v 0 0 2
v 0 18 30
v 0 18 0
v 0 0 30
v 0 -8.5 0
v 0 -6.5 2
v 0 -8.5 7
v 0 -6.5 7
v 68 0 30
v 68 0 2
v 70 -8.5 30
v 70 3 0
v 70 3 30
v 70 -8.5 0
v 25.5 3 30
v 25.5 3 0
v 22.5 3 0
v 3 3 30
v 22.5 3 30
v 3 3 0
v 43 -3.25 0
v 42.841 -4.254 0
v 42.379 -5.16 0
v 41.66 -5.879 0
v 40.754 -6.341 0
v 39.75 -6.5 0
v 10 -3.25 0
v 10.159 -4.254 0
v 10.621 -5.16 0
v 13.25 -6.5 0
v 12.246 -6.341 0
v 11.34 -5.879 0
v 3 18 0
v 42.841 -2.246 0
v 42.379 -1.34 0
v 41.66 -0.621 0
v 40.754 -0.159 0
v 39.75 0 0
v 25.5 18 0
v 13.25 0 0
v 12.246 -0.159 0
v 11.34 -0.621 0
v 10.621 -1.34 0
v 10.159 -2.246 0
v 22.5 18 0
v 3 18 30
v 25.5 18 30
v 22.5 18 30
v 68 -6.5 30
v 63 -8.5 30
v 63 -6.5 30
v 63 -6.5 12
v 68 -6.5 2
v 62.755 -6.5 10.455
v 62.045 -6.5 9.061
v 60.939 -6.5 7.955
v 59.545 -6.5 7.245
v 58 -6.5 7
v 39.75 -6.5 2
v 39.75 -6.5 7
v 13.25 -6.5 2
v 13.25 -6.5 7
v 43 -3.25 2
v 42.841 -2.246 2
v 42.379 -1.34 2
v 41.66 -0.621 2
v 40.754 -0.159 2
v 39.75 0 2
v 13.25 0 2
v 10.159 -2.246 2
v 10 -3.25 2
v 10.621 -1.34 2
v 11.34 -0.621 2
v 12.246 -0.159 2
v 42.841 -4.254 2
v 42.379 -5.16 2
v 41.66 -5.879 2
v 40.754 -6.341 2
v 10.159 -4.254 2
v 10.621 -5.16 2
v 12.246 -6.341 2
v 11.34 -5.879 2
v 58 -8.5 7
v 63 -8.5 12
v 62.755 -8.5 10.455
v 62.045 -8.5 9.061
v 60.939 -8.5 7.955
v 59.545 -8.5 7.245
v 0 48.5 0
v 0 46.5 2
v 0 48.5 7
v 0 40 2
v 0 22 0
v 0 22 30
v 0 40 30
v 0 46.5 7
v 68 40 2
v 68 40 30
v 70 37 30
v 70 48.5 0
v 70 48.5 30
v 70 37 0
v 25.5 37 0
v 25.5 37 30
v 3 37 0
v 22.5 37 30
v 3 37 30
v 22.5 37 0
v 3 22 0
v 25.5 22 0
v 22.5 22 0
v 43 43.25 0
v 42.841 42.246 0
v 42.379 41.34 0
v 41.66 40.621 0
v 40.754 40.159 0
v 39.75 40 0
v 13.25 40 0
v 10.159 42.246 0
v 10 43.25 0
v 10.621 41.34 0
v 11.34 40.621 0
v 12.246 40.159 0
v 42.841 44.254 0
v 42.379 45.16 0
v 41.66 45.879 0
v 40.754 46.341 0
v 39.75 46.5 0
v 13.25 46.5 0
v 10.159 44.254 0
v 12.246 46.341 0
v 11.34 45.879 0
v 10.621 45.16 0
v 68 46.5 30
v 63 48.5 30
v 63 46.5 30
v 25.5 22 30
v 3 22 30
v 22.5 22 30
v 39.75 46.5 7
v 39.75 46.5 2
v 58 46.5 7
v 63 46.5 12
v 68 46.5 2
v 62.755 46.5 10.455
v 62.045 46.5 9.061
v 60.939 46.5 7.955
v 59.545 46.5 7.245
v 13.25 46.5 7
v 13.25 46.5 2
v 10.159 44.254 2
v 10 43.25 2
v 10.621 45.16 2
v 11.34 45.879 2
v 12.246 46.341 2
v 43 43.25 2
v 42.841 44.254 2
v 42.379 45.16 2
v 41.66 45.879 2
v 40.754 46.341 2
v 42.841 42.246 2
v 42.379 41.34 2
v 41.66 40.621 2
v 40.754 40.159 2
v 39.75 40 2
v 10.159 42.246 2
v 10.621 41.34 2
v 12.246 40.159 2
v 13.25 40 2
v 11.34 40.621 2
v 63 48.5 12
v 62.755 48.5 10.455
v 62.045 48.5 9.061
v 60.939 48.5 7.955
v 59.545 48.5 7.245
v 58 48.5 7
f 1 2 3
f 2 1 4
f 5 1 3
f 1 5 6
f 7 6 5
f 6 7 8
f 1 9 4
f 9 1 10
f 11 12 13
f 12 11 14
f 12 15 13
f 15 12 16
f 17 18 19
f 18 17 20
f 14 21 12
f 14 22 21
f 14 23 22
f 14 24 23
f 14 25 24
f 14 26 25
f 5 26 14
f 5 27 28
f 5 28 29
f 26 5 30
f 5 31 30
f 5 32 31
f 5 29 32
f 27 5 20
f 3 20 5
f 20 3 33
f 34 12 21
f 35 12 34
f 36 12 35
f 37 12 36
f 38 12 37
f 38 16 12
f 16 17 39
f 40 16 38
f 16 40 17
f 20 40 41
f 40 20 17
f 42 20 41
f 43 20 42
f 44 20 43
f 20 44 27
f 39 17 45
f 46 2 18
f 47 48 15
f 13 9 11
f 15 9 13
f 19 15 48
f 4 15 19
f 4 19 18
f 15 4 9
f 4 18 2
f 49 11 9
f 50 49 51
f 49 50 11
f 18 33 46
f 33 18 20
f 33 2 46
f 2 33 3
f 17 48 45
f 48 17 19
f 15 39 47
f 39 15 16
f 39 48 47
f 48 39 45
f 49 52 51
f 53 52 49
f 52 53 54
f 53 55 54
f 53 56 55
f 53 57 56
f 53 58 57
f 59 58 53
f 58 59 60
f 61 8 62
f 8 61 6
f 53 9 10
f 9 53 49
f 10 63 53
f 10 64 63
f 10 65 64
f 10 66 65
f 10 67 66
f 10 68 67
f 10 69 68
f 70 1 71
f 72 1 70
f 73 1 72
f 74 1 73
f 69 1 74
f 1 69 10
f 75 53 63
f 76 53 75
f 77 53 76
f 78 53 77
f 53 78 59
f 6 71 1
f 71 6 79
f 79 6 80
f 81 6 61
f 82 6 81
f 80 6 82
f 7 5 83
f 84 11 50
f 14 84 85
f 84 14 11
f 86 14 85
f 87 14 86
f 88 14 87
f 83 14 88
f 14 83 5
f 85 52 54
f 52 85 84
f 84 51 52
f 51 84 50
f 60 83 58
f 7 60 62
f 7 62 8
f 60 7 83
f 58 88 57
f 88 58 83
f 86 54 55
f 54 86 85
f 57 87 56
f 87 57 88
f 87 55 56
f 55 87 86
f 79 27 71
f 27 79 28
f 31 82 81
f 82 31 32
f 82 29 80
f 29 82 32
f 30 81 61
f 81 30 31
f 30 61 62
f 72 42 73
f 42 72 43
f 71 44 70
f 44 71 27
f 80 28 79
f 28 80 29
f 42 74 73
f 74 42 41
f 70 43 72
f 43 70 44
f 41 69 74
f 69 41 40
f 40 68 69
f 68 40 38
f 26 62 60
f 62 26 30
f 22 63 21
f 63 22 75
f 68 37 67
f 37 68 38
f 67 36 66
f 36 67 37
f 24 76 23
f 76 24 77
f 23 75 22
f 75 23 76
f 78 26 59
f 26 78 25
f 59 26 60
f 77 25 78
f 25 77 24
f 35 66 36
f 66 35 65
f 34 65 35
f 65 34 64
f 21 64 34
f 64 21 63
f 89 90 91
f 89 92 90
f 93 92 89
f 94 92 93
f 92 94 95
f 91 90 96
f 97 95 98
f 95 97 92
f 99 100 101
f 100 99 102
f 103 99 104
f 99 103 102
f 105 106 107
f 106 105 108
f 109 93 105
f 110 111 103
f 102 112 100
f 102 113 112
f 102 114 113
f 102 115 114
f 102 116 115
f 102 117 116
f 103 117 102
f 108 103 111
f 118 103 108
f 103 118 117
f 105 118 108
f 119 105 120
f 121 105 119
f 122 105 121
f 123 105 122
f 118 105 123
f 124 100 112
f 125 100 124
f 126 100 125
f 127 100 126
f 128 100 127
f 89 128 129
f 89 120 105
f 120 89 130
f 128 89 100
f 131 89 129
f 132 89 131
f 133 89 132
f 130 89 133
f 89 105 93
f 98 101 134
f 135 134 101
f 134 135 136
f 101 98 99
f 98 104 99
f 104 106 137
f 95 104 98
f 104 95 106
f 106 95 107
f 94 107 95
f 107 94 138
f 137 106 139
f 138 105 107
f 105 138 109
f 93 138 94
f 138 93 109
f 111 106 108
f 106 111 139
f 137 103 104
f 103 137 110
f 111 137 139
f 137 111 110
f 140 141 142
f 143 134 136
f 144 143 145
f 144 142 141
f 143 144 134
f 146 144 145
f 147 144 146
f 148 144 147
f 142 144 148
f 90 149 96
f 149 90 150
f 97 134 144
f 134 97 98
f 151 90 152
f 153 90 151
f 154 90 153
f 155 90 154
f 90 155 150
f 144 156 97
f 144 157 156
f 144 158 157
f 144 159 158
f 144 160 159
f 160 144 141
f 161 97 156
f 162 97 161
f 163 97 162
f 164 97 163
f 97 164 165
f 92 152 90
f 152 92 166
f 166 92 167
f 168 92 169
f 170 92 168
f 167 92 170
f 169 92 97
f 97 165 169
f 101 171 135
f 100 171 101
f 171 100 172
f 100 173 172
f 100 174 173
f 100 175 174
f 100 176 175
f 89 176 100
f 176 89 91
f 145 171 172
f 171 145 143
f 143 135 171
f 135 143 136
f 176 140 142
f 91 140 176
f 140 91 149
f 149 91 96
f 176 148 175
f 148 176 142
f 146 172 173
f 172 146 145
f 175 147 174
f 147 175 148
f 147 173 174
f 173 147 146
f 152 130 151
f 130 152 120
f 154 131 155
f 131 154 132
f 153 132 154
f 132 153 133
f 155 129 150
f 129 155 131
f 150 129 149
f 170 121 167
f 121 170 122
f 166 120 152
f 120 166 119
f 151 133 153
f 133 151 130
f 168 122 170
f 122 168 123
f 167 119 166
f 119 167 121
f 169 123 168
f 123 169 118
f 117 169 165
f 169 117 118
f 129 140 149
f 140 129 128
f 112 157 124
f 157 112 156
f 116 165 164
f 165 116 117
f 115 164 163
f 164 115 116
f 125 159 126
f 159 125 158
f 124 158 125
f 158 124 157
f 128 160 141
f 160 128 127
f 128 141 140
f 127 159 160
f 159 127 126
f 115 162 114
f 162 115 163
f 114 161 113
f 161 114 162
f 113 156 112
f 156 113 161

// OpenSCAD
cd = 15; // claw depth
cth = 3; // claw thickness
bth = 3; // back plate thickness
fsz = 5; // frame size (the ipad blocker in the front)
fth = 2; // frame thickness (the ipad blocker in the front)
sfsz = 2;// support frame size (the one surround ipad)


h = 70;
l = 30;
nsz = 0; // faceid notch size 15

pth = 6.5;// ipad thickness + tolerance
dth = 19.5;// desk thickness + tolerance

module back_plate() {
    translate([0,0,-bth]) cube([h,l,bth]);
    translate([0,0,-(bth+cd)]) cube([cth,l,bth+cd]);
    translate([dth+cth,0,-(bth+cd)]) cube([cth,l,bth+cd]);
}

module front_frame() {
    difference() {
        cube([h,l,pth]);
        translate([-sfsz,sfsz,0]) cube([h,l,pth]);
    }

    translate([0,0,pth]) difference() {
        cube([h,l,fth]);
        $fn=20; translate([-fsz-sfsz,fsz+sfsz,0]) minkowski() {
            rr = 5; // round corner radius
            rd = rr*2;
            translate([rr,rr,0]) cube([h-rd,l-rd,fth]);
            cylinder(r=rr,h=0.001);
        }
        large = 300; translate([0,sfsz,0]) cube([nsz,large,fth]);
    }
}

module speaker_hole(length, large) {
    mirror([0,1,0]) rotate([90,0,0]) translate([pth/2,pth/2,0]) union() { 
        $fn = 20;
        cylinder(d=pth,h=large);
        translate([length/2-pth/2,0,0]) 
            linear_extrude(large) square([length-pth,pth], center=true);
        translate([length-pth,0,0]) cylinder(d=pth,h=large);
    }
}


module ipad_mount() {
    intersection() {
        large = 300;
        union() { back_plate(); front_frame(); }
        $fn=20; translate([0,0,-large]) minkowski() {
            rr = 0; // round corner radius
            rd = rr*2;
            translate([rr-large,rr,0]) cube([h-rd+large,l-rd+large,fth+pth+large]);
            cylinder(r=rr,h=0.001);
        }
    }
}

module ipad_mount_speaker() {
    difference() {
        ipad_mount();
        translate([10,0,0]) speaker_hole(length=33, large=100);
    }
}

rotate([90,0,0]) ipad_mount_speaker();
translate([0,40,0]) mirror([0,1,0]) rotate([90,0,0]) ipad_mount_speaker();
